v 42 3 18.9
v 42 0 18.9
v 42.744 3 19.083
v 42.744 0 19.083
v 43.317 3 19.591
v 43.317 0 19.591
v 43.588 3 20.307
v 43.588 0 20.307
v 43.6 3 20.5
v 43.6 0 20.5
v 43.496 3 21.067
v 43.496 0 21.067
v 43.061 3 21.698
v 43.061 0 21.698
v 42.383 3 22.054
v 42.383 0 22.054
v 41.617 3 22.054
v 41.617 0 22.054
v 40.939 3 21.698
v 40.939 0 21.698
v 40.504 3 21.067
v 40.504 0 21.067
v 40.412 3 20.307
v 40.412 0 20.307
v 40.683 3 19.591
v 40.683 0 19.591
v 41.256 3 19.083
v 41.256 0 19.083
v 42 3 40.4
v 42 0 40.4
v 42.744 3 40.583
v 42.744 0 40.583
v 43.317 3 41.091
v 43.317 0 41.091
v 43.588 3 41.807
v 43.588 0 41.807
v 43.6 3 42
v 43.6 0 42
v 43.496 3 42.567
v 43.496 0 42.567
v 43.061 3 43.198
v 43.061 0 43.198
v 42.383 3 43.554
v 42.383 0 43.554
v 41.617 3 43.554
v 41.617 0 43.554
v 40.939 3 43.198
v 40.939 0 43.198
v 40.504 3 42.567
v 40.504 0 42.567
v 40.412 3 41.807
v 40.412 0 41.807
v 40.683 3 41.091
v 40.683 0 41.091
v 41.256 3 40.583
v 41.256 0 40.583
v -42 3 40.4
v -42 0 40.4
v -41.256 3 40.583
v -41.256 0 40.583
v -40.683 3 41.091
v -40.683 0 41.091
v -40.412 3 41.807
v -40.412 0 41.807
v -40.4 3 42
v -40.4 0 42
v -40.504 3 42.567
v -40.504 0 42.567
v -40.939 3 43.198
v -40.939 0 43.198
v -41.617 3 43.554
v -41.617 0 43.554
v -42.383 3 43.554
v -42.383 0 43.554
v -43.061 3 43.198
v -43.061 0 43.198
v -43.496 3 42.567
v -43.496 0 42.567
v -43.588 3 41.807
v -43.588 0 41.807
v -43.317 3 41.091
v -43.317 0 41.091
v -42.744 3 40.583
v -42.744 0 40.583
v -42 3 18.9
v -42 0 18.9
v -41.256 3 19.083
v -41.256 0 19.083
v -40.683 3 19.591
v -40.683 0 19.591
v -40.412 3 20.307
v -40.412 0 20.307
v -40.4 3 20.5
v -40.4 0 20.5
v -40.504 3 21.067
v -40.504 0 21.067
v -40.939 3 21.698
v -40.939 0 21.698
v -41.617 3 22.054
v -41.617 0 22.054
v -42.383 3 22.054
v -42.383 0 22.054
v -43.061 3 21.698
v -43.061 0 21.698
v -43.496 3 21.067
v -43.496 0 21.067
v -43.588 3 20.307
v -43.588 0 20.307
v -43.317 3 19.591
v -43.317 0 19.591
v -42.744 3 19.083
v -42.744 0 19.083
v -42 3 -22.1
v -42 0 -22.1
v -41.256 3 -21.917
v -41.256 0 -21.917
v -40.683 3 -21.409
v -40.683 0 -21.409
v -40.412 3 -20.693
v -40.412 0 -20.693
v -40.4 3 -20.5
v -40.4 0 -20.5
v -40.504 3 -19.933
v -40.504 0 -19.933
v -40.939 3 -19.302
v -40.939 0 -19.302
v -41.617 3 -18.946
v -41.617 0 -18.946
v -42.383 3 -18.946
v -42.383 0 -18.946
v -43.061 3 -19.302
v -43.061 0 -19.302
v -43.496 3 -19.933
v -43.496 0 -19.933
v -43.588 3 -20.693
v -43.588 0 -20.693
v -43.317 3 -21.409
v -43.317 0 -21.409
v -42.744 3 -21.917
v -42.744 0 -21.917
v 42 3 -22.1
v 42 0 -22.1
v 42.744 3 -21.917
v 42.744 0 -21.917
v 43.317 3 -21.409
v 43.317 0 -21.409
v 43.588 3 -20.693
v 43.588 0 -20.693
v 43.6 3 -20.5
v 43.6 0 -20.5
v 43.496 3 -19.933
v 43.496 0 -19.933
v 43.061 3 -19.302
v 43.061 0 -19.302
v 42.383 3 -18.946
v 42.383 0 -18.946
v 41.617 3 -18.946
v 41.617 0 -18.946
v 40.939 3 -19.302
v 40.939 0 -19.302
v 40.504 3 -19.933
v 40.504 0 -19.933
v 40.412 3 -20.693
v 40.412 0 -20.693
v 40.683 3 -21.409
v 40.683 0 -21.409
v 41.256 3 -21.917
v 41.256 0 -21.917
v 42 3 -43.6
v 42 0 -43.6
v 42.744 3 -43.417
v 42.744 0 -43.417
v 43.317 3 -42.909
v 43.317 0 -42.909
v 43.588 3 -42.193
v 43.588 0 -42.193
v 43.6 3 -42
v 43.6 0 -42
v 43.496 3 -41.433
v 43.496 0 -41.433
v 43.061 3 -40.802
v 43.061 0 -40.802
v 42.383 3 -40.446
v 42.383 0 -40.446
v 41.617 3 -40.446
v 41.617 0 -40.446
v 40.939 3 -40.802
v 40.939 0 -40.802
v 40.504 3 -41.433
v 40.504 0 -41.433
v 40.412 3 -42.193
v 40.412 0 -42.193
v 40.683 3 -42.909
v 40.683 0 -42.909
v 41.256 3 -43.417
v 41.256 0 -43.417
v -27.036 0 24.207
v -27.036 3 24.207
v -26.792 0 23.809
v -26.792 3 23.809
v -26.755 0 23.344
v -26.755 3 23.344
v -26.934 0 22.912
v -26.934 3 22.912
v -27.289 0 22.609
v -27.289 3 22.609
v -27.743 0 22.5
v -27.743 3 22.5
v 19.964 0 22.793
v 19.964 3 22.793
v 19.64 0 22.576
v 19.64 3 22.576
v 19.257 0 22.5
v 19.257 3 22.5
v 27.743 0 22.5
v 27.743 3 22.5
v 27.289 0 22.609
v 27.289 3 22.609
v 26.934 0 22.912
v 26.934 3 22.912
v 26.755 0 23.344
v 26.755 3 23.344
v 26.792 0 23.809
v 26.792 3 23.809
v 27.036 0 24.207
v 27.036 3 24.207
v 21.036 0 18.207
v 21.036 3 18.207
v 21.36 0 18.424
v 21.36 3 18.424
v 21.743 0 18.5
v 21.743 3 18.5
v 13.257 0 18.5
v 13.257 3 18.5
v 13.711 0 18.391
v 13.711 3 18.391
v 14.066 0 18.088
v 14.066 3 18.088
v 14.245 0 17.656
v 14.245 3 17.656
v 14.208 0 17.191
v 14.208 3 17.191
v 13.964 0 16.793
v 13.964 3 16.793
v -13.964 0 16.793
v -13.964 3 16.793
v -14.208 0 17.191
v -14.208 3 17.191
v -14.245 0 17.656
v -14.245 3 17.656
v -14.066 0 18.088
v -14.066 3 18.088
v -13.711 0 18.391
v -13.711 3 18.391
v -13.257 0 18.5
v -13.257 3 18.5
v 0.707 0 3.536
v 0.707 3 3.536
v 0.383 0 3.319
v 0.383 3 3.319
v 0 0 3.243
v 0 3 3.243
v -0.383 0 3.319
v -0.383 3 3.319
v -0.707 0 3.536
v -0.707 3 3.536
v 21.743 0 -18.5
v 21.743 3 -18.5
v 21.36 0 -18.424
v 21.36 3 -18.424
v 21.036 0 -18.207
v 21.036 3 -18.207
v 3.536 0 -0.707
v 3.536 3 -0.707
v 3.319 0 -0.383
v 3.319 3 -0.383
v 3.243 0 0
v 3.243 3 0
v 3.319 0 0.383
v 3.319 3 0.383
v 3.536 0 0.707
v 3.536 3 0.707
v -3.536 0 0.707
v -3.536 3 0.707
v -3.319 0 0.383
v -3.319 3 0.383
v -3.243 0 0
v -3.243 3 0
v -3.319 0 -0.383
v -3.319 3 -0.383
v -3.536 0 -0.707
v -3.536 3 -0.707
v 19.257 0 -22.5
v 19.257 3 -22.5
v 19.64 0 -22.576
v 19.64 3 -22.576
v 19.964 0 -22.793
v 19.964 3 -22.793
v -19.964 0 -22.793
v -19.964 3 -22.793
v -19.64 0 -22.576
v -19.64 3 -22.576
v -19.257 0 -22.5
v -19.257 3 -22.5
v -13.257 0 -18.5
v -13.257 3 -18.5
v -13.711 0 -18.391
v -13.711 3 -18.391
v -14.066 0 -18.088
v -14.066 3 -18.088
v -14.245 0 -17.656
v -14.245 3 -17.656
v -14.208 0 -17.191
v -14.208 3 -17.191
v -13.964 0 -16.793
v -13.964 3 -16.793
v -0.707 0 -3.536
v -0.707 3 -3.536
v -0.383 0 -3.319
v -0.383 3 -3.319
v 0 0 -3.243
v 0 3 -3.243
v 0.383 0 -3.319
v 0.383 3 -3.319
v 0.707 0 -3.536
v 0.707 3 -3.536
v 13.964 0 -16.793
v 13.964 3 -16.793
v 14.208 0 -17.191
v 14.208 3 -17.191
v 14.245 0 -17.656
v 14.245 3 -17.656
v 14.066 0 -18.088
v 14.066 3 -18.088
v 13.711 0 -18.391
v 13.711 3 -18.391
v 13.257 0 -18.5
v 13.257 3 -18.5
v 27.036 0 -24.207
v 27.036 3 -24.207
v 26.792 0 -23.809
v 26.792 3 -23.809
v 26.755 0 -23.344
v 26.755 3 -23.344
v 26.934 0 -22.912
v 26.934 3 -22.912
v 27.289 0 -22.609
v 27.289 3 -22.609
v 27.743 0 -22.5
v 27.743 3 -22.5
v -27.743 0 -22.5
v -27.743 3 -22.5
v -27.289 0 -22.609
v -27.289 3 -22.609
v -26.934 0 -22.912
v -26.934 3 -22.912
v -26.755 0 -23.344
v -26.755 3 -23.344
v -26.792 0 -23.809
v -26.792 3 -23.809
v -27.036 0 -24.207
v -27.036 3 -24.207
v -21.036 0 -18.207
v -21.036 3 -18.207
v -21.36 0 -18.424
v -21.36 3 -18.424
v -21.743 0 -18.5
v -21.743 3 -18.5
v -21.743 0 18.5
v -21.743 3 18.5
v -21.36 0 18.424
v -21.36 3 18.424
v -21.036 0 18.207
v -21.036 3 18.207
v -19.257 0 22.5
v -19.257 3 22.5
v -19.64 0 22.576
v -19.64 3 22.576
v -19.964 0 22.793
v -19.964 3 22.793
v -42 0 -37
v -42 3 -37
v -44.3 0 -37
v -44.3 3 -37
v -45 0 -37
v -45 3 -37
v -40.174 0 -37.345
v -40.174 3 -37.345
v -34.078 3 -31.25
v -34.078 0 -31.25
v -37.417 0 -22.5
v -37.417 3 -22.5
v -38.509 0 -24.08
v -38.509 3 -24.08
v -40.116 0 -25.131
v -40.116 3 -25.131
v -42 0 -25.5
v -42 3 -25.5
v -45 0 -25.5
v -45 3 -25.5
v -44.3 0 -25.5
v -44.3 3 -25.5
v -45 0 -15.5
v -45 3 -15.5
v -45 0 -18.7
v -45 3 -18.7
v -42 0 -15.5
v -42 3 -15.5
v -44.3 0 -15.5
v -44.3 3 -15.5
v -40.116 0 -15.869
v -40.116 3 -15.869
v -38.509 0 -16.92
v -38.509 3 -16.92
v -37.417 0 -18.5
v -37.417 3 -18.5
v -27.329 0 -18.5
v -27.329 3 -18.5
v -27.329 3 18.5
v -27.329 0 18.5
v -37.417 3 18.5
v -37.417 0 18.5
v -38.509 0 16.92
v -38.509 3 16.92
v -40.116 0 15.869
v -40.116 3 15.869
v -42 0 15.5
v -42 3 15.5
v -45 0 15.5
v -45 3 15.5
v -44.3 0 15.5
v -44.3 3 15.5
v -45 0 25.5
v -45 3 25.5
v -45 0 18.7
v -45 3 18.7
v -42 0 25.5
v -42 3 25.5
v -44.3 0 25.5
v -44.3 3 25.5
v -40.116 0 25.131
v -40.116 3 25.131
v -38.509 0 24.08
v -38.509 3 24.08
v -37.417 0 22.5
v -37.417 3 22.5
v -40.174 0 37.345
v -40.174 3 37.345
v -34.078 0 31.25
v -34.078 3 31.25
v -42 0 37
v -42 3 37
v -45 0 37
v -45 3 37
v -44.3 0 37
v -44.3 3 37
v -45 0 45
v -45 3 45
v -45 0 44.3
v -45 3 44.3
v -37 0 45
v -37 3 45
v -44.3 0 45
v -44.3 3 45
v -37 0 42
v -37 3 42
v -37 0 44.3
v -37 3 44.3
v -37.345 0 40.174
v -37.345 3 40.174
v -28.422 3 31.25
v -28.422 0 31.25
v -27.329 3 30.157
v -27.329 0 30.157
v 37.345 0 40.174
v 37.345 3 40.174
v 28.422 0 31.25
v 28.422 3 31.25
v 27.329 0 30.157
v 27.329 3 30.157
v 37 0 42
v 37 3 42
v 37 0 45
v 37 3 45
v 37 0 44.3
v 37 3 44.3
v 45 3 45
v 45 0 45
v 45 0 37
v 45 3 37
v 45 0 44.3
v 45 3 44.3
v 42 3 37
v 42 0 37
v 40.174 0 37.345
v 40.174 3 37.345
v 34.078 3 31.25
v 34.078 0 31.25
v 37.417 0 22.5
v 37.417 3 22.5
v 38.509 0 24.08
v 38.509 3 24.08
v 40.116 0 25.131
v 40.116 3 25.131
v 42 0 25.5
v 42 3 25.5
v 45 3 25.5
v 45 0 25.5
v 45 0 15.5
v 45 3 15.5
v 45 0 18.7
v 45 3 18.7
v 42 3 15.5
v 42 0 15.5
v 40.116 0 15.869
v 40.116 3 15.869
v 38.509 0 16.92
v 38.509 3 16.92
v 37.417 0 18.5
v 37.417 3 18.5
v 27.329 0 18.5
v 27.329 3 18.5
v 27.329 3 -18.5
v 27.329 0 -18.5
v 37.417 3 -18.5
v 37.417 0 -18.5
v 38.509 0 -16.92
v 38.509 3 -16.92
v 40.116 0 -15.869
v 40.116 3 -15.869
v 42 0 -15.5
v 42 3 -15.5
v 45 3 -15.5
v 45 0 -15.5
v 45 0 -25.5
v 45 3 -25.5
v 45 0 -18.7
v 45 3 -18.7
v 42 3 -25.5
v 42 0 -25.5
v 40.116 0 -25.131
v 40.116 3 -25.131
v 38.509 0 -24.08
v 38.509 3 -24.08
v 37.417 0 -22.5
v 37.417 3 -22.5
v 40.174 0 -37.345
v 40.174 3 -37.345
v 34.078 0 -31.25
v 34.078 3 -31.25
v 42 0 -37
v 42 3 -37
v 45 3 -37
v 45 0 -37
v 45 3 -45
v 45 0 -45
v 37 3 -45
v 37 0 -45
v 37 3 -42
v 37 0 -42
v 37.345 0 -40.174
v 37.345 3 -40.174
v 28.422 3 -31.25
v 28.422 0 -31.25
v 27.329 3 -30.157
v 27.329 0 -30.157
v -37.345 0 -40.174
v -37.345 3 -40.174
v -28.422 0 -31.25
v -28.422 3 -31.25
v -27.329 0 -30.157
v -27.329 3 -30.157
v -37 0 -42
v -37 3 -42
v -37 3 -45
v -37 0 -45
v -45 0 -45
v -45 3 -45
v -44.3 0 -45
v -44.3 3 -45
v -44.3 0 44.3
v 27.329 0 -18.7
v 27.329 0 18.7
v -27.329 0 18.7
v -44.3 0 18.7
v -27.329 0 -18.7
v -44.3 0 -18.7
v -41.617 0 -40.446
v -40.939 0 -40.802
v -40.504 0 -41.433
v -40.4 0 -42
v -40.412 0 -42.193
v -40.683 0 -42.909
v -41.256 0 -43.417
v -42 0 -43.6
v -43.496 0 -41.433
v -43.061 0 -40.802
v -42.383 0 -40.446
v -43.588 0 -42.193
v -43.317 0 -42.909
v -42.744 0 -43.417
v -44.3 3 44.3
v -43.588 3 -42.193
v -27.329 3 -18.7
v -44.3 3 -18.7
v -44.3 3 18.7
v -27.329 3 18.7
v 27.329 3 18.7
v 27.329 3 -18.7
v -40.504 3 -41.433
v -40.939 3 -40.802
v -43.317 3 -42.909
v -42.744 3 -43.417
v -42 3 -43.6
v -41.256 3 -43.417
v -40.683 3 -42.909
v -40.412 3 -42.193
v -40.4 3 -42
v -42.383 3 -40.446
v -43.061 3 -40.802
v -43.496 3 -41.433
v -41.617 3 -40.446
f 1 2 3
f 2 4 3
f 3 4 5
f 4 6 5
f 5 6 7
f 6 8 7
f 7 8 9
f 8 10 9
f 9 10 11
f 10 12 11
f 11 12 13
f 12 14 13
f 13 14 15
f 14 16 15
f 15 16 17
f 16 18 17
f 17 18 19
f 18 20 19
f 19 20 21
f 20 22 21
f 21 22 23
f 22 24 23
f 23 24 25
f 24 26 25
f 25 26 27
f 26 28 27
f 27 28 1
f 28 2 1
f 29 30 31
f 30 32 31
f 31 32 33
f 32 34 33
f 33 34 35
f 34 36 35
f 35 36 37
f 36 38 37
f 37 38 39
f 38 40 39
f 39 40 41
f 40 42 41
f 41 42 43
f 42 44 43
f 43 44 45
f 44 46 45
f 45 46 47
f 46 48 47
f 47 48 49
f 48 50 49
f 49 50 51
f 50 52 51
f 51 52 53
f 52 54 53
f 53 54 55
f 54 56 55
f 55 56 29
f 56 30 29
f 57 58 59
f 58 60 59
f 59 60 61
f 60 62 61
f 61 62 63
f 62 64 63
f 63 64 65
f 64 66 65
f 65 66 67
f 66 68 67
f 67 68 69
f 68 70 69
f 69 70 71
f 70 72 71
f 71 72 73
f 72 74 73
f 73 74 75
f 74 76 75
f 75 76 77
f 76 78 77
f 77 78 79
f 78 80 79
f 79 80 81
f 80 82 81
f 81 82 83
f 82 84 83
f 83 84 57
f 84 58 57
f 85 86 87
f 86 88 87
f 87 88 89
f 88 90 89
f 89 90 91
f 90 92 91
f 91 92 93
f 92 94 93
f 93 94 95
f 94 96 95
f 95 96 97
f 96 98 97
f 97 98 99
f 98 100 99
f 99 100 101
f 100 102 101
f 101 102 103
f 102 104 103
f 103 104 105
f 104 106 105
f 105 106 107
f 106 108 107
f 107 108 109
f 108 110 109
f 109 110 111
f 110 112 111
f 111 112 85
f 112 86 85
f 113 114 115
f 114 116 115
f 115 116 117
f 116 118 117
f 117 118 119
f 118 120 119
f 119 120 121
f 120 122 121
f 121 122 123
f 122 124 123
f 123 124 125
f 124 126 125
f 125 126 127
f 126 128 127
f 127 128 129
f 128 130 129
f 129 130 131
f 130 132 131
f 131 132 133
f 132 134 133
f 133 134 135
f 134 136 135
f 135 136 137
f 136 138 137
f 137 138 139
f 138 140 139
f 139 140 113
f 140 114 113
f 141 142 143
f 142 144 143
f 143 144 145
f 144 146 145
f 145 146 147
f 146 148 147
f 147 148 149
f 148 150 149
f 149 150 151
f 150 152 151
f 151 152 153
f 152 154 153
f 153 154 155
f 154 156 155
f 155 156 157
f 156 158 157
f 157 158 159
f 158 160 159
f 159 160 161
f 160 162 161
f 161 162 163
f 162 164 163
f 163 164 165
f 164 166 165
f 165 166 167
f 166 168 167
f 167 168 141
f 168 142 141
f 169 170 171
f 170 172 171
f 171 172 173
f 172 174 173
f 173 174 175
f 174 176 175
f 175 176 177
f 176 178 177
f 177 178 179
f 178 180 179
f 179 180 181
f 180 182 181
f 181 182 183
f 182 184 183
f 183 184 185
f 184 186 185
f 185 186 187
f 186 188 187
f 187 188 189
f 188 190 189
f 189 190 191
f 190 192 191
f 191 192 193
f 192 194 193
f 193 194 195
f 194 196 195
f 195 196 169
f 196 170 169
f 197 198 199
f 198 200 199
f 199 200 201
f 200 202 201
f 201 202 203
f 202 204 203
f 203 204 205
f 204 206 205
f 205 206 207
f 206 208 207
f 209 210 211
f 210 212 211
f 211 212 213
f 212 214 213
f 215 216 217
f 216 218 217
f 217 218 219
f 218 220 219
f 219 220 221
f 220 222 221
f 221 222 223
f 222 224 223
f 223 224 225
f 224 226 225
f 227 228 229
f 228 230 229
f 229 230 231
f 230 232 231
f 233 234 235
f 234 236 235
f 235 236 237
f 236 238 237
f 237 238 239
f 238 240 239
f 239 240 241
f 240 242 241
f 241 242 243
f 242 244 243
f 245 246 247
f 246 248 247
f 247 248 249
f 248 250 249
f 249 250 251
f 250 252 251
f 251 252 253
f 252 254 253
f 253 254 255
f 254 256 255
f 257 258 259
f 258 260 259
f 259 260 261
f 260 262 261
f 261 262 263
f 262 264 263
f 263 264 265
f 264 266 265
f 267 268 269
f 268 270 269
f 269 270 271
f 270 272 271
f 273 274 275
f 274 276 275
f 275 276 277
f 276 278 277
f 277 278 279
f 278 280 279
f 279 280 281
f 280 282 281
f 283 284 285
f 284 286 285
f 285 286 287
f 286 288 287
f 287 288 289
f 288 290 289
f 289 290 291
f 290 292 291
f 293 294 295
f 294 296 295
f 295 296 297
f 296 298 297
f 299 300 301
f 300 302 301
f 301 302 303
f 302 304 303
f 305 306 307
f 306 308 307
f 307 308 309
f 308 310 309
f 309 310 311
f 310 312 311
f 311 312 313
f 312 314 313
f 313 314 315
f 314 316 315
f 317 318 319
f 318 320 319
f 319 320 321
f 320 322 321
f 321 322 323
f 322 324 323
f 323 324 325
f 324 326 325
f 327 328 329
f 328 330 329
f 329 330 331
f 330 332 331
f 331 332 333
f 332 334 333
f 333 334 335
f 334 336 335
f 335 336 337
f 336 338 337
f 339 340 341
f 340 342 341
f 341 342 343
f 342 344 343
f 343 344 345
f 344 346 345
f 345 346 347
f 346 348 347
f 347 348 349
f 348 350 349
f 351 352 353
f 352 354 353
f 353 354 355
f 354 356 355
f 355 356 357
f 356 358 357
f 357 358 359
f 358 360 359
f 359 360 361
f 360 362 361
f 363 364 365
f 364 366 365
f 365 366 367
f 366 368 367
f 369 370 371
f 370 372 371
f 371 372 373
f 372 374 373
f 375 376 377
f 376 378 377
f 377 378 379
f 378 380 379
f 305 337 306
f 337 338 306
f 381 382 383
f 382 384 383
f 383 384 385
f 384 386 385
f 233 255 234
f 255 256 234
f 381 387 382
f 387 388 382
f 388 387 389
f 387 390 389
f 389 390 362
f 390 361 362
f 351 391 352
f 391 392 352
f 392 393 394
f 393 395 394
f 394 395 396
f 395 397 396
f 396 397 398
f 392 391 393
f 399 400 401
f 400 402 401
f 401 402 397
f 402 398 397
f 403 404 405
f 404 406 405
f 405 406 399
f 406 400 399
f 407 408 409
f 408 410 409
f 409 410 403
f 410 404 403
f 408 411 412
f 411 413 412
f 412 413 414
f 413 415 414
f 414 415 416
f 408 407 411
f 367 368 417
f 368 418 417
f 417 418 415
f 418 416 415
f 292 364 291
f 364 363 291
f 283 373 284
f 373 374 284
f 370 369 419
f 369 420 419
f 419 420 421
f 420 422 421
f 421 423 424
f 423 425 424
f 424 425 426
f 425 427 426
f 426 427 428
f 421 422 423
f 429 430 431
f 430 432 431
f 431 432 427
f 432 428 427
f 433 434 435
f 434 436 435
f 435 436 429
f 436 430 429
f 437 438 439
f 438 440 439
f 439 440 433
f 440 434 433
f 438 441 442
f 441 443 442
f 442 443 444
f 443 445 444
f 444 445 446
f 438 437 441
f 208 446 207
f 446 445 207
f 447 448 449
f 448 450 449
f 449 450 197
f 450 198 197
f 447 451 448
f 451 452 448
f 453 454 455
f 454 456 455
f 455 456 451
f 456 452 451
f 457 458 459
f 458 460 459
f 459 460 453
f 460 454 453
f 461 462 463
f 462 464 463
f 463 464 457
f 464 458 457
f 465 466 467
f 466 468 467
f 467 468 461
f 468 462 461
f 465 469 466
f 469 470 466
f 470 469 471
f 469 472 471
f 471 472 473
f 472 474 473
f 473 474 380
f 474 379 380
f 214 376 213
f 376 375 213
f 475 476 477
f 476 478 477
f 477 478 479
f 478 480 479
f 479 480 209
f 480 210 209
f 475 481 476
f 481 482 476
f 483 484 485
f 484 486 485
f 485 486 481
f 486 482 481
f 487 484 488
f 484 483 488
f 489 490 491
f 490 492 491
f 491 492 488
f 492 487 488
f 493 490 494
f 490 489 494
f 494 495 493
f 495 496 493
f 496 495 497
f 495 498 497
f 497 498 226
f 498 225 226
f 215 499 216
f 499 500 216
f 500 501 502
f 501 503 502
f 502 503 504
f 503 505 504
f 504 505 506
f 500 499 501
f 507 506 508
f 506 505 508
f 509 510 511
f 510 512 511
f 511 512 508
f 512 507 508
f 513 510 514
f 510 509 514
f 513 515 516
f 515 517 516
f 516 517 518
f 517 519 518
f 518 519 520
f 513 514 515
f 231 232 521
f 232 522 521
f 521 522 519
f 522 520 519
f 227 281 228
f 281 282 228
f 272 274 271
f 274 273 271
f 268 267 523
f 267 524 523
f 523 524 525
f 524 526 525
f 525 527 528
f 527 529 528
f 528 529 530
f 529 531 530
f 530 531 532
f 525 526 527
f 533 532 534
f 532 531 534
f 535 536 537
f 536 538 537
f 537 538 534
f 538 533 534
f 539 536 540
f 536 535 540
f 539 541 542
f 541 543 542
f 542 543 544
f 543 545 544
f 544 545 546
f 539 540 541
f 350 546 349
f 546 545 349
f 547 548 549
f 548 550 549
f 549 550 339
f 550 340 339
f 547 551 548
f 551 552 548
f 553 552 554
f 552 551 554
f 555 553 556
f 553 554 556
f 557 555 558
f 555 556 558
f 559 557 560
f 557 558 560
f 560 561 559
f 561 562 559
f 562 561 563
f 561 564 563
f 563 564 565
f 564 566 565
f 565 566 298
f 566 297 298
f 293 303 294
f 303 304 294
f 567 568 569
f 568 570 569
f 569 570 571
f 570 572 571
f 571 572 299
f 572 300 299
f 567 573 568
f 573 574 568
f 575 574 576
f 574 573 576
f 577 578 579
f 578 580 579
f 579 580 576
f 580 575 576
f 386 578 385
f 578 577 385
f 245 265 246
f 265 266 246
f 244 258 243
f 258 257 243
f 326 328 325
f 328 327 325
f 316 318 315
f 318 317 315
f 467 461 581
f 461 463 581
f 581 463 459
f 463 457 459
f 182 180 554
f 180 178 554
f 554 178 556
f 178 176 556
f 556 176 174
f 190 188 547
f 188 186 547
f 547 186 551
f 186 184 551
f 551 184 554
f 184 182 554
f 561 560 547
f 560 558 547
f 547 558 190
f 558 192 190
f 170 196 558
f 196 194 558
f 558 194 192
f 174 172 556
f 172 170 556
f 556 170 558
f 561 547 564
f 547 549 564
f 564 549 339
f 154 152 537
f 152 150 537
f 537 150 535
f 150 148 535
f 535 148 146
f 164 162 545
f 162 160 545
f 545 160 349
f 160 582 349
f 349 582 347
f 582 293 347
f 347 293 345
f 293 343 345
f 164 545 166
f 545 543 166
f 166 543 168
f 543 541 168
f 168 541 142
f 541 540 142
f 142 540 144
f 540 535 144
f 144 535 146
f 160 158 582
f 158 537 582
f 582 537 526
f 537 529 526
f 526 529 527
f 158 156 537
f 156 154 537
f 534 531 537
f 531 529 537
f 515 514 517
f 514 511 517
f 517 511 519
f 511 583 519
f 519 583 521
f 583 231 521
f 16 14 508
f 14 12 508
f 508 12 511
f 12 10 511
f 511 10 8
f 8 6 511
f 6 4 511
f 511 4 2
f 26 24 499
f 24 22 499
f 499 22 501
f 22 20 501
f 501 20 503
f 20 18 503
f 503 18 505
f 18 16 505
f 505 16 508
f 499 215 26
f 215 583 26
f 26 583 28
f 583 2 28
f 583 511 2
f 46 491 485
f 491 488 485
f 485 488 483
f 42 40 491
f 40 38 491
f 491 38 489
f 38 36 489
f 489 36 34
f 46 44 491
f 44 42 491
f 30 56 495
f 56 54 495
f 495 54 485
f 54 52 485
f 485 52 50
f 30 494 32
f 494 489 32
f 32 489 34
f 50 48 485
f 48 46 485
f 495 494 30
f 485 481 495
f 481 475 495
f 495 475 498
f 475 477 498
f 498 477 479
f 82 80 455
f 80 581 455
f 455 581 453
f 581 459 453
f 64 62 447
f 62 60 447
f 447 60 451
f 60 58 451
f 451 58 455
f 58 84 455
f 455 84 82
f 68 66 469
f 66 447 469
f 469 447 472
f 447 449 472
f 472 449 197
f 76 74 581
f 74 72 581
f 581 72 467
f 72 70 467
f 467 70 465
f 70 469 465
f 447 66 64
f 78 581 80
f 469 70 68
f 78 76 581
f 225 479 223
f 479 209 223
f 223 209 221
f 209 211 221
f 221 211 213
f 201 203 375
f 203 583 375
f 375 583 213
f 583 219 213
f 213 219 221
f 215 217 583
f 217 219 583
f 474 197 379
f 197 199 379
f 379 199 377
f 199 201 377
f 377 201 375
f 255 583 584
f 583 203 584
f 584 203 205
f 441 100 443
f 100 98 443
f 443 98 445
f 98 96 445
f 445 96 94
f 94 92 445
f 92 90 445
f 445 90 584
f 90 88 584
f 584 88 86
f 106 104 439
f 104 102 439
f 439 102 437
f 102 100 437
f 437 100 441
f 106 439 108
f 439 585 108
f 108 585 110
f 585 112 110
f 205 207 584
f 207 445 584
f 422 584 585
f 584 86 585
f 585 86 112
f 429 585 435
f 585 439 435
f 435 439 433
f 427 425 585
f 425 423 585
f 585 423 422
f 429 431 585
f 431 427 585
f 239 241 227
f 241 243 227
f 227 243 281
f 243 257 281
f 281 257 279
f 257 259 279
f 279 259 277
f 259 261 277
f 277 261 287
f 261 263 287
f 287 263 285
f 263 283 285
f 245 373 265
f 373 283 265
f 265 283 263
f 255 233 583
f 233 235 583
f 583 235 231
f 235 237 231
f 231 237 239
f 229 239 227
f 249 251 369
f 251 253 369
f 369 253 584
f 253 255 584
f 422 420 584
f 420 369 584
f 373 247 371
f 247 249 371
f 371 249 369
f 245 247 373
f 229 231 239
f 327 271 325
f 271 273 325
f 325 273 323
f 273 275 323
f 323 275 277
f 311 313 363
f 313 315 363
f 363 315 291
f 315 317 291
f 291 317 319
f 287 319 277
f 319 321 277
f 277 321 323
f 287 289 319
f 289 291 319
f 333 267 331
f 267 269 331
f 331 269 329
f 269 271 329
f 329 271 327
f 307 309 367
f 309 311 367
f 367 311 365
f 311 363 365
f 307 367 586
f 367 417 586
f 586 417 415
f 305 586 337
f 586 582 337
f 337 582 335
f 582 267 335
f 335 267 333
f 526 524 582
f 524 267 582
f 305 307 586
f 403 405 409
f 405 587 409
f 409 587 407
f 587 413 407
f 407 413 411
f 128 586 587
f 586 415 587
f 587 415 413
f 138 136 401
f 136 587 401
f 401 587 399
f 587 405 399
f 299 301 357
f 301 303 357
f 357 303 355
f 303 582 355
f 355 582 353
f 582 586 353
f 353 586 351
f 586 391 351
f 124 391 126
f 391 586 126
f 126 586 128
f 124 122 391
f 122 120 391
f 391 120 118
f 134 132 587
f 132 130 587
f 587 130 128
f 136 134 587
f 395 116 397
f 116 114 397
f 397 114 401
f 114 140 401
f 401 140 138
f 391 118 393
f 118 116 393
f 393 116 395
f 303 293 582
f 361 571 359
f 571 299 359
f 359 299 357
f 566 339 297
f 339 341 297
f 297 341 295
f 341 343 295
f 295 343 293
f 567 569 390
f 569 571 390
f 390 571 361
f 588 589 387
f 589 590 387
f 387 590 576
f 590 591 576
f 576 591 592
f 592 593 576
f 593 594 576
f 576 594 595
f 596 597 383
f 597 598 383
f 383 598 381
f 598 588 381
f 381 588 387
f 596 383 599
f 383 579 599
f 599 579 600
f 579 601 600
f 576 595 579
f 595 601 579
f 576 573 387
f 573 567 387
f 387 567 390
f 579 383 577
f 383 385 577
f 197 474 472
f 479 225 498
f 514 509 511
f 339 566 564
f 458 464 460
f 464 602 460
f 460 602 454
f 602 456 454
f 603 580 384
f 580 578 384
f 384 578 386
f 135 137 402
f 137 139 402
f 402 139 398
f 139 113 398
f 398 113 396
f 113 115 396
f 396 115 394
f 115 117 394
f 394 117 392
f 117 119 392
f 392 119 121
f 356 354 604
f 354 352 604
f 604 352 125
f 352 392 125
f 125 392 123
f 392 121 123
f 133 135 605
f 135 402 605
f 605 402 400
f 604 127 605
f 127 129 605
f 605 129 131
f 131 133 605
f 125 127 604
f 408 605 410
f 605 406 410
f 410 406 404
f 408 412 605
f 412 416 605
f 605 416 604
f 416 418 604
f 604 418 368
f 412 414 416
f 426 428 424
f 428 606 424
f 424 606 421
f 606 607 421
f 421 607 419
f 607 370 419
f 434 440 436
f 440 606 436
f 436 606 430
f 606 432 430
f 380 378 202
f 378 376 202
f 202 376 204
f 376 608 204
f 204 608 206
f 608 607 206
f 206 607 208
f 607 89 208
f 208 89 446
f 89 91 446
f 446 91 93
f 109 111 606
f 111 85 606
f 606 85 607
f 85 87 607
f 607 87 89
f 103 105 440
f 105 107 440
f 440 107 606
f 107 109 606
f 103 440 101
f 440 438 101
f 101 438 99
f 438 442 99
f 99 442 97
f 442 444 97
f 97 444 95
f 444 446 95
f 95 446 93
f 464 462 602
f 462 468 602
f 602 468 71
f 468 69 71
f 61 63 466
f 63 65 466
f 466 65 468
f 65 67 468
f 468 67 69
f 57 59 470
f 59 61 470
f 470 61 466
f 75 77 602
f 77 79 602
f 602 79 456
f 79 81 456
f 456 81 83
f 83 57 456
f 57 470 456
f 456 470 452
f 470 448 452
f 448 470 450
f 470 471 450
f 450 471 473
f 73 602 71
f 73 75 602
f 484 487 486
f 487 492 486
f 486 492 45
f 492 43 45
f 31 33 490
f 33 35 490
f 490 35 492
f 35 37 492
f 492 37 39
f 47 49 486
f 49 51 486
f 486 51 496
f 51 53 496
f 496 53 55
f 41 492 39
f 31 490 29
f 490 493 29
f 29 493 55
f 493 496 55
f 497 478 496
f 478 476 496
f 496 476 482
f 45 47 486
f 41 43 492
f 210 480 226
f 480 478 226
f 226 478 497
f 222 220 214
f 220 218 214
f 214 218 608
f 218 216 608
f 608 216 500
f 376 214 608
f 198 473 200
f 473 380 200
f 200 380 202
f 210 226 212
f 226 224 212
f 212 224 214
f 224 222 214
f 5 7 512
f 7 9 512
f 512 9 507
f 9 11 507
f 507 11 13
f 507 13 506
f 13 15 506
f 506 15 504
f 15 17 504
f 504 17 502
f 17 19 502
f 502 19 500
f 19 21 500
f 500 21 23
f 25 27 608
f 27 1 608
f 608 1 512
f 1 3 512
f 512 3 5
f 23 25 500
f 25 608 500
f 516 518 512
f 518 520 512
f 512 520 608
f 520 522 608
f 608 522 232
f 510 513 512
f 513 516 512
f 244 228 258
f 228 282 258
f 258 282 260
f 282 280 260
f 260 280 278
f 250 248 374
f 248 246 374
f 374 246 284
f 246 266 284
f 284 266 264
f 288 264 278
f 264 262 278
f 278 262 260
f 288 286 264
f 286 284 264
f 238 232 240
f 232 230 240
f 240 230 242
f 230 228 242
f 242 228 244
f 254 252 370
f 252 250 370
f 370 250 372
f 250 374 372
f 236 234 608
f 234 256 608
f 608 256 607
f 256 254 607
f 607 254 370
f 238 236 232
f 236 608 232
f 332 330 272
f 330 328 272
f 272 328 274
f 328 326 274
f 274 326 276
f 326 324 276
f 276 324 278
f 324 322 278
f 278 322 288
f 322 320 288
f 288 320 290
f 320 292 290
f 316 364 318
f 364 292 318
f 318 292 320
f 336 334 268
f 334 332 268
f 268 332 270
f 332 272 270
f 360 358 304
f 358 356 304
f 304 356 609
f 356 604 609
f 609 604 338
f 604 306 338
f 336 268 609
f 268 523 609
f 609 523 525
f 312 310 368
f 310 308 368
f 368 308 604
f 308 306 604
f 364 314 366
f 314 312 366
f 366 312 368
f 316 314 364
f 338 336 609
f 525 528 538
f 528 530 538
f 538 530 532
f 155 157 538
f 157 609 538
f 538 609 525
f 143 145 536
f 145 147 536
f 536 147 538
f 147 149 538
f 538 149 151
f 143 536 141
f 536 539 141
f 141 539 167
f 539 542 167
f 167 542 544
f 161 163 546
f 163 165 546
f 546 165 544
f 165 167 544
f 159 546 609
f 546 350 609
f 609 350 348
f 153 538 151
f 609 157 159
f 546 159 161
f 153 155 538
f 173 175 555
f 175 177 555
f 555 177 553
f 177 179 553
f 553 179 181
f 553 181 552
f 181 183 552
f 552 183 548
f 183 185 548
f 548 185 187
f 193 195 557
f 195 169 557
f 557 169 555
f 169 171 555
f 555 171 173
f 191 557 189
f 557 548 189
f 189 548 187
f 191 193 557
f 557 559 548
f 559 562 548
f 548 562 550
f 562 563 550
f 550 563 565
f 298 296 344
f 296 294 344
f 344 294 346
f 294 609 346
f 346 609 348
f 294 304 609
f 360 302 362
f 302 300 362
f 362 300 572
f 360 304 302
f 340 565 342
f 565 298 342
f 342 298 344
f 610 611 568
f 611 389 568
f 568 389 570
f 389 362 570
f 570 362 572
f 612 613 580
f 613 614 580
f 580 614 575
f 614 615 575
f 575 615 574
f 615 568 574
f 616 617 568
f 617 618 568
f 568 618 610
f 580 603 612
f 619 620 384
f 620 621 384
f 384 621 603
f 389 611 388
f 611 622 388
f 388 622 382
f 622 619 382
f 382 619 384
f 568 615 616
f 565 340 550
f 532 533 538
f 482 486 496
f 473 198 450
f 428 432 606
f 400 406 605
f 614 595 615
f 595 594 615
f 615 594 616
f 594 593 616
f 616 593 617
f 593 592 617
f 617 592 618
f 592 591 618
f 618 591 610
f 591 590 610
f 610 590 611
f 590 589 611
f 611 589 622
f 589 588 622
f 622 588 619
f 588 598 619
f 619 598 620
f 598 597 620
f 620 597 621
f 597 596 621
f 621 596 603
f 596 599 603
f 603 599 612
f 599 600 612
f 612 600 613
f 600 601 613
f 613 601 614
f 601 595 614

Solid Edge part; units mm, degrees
sketch "Sketch1" plane through (0, 0, 0) normal (0, -1, 0) x (1, 0, 0)
  line L0 (-45, -45) -> (-37, -45)
  line L1 (-37, -42) -> (-37, -45)
  line L2 (-19.6716, -22.5) -> (-37.3454, -40.1738)
  line L3 (-19.6716, -22.5) -> (19.6716, -22.5)
  line L4 (37.3454, -40.1738) -> (19.6716, -22.5)
  arc A0 (37, -42) -> (37.3454, -40.1738) centre (42, -42) cw
  line L5 (37, -42) -> (37, -45)
  line L6 (37, -45) -> (45, -45)
  line L7 (45, -45) -> (45, -37)
  line L8 (42, -37) -> (45, -37)
  line L9 (25.3284, -22.5) -> (40.1738, -37.3454)
  line L10 (25.3284, -22.5) -> (37.4174, -22.5)
  arc A1 (42, -25.5) -> (37.4174, -22.5) centre (42, -20.5) cw
  line L11 (42, -25.5) -> (45, -25.5)
  line L12 (45, -25.5) -> (45, -15.5)
  line L13 (42, -15.5) -> (45, -15.5)
  line L14 (37.4174, -18.5) -> (21.3284, -18.5)
  line L15 (2.8284, 0) -> (21.3284, -18.5)
  line L16 (21.3284, 18.5) -> (2.8284, 0)
  line L17 (21.3284, 18.5) -> (37.4174, 18.5)
  line L18 (42, 15.5) -> (45, 15.5)
  line L19 (45, 15.5) -> (45, 25.5)
  line L20 (42, 25.5) -> (45, 25.5)
  arc A2 (37.4174, 22.5) -> (42, 25.5) centre (42, 20.5) cw
  line L21 (37.4174, 22.5) -> (25.3284, 22.5)
  line L22 (40.1738, 37.3454) -> (25.3284, 22.5)
  line L23 (42, 37) -> (45, 37)
  line L24 (45, 37) -> (45, 45)
  line L25 (45, 45) -> (37, 45)
  line L26 (37, 42) -> (37, 45)
  arc A3 (37.3454, 40.1738) -> (37, 42) centre (42, 42) cw
  line L27 (19.6716, 22.5) -> (37.3454, 40.1738)
  line L28 (19.6716, 22.5) -> (-19.6716, 22.5)
  line L29 (-37.3454, 40.1738) -> (-19.6716, 22.5)
  line L30 (-37, 42) -> (-37, 45)
  line L31 (-37, 45) -> (-45, 45)
  line L32 (-45, 45) -> (-45, 37)
  line L33 (-42, 37) -> (-45, 37)
  arc A4 (-40.1738, 37.3454) -> (-42, 37) centre (-42, 42) cw
  line L34 (-25.3284, 22.5) -> (-40.1738, 37.3454)
  line L35 (-25.3284, 22.5) -> (-37.4174, 22.5)
  arc A5 (-42, 25.5) -> (-37.4174, 22.5) centre (-42, 20.5) cw
  line L36 (-42, 25.5) -> (-45, 25.5)
  line L37 (-45, 25.5) -> (-45, 15.5)
  line L38 (-42, 15.5) -> (-45, 15.5)
  line L39 (-37.4174, 18.5) -> (-21.3284, 18.5)
  line L40 (-2.8284, 0) -> (-21.3284, 18.5)
  line L41 (-21.3284, -18.5) -> (-2.8284, 0)
  line L42 (-21.3284, -18.5) -> (-37.4174, -18.5)
  arc A6 (-42, -15.5) -> (-37.4174, -18.5) centre (-42, -20.5) cw
  line L43 (-42, -15.5) -> (-45, -15.5)
  line L44 (-45, -15.5) -> (-45, -25.5)
  line L45 (-42, -25.5) -> (-45, -25.5)
  line L46 (-37.4174, -22.5) -> (-25.3284, -22.5)
  line L47 (-40.1738, -37.3454) -> (-25.3284, -22.5)
  arc A7 (-42, -37) -> (-40.1738, -37.3454) centre (-42, -42) cw
  line L48 (-42, -37) -> (-45, -37)
  line L49 (-45, -37) -> (-45, -45)
  arc A8 (-37, -42) -> (-37.3454, -40.1738) centre (-42, -42) ccw
  arc A9 (42, -37) -> (40.1738, -37.3454) centre (42, -42) ccw
  arc A10 (42, -15.5) -> (37.4174, -18.5) centre (42, -20.5) ccw
  arc A11 (37.4174, 18.5) -> (42, 15.5) centre (42, 20.5) ccw
  arc A12 (40.1738, 37.3454) -> (42, 37) centre (42, 42) ccw
  arc A13 (-37.3454, 40.1738) -> (-37, 42) centre (-42, 42) ccw
  arc A14 (-42, 15.5) -> (-37.4174, 18.5) centre (-42, 20.5) ccw
  arc A15 (-42, -25.5) -> (-37.4174, -22.5) centre (-42, -20.5) ccw
  circle A16 centre (-42, -42) radius 1.6
  circle A17 centre (42, -42) radius 1.6
  circle A18 centre (42, -20.5) radius 1.6
  circle A19 centre (-42, -20.5) radius 1.6
  circle A20 centre (-42, 20.5) radius 1.6
  circle A21 centre (-42, 42) radius 1.6
  circle A22 centre (42, 42) radius 1.6
  circle A23 centre (42, 20.5) radius 1.6
  line L50 (-15.6716, 18.5) -> (15.6716, 18.5)
  line L51 (0, 2.8284) -> (15.6716, 18.5)
  line L52 (-15.6716, 18.5) -> (0, 2.8284)
  line L53 (15.6716, -18.5) -> (-15.6716, -18.5)
  line L54 (0, -2.8284) -> (-15.6716, -18.5)
  line L55 (15.6716, -18.5) -> (0, -2.8284)
  dimension "D1" = 57.5
  dimension "D2" = 3
  dimension "D3" = 21.5
  dimension "D4" = 62.5
  dimension "D5" = 84
  dimension "D6" = 84
extrude "Protrusion1" add sketch "Sketch1" against normal blind 3
fillet "Round1" radius 1 20 edges at (-19.6716, 1.5, 22.5) (-25.3284, 1.5, 22.5) (19.6716, 1.5, 22.5) (25.3284, 1.5, 22.5) (21.3284, 1.5, 18.5) (15.6716, 1.5, 18.5) (-15.6716, 1.5, 18.5) (0, 1.5, 2.8284) (21.3284, 1.5, -18.5) (2.8284, 1.5, 0) (-2.8284, 1.5, 0) (19.6716, 1.5, -22.5) (-19.6716, 1.5, -22.5) (-15.6716, 1.5, -18.5) (0, 1.5, -2.8284) (15.6716, 1.5, -18.5) (25.3284, 1.5, -22.5) (-25.3284, 1.5, -22.5) (-21.3284, 1.5, -18.5) (-21.3284, 1.5, 18.5)
